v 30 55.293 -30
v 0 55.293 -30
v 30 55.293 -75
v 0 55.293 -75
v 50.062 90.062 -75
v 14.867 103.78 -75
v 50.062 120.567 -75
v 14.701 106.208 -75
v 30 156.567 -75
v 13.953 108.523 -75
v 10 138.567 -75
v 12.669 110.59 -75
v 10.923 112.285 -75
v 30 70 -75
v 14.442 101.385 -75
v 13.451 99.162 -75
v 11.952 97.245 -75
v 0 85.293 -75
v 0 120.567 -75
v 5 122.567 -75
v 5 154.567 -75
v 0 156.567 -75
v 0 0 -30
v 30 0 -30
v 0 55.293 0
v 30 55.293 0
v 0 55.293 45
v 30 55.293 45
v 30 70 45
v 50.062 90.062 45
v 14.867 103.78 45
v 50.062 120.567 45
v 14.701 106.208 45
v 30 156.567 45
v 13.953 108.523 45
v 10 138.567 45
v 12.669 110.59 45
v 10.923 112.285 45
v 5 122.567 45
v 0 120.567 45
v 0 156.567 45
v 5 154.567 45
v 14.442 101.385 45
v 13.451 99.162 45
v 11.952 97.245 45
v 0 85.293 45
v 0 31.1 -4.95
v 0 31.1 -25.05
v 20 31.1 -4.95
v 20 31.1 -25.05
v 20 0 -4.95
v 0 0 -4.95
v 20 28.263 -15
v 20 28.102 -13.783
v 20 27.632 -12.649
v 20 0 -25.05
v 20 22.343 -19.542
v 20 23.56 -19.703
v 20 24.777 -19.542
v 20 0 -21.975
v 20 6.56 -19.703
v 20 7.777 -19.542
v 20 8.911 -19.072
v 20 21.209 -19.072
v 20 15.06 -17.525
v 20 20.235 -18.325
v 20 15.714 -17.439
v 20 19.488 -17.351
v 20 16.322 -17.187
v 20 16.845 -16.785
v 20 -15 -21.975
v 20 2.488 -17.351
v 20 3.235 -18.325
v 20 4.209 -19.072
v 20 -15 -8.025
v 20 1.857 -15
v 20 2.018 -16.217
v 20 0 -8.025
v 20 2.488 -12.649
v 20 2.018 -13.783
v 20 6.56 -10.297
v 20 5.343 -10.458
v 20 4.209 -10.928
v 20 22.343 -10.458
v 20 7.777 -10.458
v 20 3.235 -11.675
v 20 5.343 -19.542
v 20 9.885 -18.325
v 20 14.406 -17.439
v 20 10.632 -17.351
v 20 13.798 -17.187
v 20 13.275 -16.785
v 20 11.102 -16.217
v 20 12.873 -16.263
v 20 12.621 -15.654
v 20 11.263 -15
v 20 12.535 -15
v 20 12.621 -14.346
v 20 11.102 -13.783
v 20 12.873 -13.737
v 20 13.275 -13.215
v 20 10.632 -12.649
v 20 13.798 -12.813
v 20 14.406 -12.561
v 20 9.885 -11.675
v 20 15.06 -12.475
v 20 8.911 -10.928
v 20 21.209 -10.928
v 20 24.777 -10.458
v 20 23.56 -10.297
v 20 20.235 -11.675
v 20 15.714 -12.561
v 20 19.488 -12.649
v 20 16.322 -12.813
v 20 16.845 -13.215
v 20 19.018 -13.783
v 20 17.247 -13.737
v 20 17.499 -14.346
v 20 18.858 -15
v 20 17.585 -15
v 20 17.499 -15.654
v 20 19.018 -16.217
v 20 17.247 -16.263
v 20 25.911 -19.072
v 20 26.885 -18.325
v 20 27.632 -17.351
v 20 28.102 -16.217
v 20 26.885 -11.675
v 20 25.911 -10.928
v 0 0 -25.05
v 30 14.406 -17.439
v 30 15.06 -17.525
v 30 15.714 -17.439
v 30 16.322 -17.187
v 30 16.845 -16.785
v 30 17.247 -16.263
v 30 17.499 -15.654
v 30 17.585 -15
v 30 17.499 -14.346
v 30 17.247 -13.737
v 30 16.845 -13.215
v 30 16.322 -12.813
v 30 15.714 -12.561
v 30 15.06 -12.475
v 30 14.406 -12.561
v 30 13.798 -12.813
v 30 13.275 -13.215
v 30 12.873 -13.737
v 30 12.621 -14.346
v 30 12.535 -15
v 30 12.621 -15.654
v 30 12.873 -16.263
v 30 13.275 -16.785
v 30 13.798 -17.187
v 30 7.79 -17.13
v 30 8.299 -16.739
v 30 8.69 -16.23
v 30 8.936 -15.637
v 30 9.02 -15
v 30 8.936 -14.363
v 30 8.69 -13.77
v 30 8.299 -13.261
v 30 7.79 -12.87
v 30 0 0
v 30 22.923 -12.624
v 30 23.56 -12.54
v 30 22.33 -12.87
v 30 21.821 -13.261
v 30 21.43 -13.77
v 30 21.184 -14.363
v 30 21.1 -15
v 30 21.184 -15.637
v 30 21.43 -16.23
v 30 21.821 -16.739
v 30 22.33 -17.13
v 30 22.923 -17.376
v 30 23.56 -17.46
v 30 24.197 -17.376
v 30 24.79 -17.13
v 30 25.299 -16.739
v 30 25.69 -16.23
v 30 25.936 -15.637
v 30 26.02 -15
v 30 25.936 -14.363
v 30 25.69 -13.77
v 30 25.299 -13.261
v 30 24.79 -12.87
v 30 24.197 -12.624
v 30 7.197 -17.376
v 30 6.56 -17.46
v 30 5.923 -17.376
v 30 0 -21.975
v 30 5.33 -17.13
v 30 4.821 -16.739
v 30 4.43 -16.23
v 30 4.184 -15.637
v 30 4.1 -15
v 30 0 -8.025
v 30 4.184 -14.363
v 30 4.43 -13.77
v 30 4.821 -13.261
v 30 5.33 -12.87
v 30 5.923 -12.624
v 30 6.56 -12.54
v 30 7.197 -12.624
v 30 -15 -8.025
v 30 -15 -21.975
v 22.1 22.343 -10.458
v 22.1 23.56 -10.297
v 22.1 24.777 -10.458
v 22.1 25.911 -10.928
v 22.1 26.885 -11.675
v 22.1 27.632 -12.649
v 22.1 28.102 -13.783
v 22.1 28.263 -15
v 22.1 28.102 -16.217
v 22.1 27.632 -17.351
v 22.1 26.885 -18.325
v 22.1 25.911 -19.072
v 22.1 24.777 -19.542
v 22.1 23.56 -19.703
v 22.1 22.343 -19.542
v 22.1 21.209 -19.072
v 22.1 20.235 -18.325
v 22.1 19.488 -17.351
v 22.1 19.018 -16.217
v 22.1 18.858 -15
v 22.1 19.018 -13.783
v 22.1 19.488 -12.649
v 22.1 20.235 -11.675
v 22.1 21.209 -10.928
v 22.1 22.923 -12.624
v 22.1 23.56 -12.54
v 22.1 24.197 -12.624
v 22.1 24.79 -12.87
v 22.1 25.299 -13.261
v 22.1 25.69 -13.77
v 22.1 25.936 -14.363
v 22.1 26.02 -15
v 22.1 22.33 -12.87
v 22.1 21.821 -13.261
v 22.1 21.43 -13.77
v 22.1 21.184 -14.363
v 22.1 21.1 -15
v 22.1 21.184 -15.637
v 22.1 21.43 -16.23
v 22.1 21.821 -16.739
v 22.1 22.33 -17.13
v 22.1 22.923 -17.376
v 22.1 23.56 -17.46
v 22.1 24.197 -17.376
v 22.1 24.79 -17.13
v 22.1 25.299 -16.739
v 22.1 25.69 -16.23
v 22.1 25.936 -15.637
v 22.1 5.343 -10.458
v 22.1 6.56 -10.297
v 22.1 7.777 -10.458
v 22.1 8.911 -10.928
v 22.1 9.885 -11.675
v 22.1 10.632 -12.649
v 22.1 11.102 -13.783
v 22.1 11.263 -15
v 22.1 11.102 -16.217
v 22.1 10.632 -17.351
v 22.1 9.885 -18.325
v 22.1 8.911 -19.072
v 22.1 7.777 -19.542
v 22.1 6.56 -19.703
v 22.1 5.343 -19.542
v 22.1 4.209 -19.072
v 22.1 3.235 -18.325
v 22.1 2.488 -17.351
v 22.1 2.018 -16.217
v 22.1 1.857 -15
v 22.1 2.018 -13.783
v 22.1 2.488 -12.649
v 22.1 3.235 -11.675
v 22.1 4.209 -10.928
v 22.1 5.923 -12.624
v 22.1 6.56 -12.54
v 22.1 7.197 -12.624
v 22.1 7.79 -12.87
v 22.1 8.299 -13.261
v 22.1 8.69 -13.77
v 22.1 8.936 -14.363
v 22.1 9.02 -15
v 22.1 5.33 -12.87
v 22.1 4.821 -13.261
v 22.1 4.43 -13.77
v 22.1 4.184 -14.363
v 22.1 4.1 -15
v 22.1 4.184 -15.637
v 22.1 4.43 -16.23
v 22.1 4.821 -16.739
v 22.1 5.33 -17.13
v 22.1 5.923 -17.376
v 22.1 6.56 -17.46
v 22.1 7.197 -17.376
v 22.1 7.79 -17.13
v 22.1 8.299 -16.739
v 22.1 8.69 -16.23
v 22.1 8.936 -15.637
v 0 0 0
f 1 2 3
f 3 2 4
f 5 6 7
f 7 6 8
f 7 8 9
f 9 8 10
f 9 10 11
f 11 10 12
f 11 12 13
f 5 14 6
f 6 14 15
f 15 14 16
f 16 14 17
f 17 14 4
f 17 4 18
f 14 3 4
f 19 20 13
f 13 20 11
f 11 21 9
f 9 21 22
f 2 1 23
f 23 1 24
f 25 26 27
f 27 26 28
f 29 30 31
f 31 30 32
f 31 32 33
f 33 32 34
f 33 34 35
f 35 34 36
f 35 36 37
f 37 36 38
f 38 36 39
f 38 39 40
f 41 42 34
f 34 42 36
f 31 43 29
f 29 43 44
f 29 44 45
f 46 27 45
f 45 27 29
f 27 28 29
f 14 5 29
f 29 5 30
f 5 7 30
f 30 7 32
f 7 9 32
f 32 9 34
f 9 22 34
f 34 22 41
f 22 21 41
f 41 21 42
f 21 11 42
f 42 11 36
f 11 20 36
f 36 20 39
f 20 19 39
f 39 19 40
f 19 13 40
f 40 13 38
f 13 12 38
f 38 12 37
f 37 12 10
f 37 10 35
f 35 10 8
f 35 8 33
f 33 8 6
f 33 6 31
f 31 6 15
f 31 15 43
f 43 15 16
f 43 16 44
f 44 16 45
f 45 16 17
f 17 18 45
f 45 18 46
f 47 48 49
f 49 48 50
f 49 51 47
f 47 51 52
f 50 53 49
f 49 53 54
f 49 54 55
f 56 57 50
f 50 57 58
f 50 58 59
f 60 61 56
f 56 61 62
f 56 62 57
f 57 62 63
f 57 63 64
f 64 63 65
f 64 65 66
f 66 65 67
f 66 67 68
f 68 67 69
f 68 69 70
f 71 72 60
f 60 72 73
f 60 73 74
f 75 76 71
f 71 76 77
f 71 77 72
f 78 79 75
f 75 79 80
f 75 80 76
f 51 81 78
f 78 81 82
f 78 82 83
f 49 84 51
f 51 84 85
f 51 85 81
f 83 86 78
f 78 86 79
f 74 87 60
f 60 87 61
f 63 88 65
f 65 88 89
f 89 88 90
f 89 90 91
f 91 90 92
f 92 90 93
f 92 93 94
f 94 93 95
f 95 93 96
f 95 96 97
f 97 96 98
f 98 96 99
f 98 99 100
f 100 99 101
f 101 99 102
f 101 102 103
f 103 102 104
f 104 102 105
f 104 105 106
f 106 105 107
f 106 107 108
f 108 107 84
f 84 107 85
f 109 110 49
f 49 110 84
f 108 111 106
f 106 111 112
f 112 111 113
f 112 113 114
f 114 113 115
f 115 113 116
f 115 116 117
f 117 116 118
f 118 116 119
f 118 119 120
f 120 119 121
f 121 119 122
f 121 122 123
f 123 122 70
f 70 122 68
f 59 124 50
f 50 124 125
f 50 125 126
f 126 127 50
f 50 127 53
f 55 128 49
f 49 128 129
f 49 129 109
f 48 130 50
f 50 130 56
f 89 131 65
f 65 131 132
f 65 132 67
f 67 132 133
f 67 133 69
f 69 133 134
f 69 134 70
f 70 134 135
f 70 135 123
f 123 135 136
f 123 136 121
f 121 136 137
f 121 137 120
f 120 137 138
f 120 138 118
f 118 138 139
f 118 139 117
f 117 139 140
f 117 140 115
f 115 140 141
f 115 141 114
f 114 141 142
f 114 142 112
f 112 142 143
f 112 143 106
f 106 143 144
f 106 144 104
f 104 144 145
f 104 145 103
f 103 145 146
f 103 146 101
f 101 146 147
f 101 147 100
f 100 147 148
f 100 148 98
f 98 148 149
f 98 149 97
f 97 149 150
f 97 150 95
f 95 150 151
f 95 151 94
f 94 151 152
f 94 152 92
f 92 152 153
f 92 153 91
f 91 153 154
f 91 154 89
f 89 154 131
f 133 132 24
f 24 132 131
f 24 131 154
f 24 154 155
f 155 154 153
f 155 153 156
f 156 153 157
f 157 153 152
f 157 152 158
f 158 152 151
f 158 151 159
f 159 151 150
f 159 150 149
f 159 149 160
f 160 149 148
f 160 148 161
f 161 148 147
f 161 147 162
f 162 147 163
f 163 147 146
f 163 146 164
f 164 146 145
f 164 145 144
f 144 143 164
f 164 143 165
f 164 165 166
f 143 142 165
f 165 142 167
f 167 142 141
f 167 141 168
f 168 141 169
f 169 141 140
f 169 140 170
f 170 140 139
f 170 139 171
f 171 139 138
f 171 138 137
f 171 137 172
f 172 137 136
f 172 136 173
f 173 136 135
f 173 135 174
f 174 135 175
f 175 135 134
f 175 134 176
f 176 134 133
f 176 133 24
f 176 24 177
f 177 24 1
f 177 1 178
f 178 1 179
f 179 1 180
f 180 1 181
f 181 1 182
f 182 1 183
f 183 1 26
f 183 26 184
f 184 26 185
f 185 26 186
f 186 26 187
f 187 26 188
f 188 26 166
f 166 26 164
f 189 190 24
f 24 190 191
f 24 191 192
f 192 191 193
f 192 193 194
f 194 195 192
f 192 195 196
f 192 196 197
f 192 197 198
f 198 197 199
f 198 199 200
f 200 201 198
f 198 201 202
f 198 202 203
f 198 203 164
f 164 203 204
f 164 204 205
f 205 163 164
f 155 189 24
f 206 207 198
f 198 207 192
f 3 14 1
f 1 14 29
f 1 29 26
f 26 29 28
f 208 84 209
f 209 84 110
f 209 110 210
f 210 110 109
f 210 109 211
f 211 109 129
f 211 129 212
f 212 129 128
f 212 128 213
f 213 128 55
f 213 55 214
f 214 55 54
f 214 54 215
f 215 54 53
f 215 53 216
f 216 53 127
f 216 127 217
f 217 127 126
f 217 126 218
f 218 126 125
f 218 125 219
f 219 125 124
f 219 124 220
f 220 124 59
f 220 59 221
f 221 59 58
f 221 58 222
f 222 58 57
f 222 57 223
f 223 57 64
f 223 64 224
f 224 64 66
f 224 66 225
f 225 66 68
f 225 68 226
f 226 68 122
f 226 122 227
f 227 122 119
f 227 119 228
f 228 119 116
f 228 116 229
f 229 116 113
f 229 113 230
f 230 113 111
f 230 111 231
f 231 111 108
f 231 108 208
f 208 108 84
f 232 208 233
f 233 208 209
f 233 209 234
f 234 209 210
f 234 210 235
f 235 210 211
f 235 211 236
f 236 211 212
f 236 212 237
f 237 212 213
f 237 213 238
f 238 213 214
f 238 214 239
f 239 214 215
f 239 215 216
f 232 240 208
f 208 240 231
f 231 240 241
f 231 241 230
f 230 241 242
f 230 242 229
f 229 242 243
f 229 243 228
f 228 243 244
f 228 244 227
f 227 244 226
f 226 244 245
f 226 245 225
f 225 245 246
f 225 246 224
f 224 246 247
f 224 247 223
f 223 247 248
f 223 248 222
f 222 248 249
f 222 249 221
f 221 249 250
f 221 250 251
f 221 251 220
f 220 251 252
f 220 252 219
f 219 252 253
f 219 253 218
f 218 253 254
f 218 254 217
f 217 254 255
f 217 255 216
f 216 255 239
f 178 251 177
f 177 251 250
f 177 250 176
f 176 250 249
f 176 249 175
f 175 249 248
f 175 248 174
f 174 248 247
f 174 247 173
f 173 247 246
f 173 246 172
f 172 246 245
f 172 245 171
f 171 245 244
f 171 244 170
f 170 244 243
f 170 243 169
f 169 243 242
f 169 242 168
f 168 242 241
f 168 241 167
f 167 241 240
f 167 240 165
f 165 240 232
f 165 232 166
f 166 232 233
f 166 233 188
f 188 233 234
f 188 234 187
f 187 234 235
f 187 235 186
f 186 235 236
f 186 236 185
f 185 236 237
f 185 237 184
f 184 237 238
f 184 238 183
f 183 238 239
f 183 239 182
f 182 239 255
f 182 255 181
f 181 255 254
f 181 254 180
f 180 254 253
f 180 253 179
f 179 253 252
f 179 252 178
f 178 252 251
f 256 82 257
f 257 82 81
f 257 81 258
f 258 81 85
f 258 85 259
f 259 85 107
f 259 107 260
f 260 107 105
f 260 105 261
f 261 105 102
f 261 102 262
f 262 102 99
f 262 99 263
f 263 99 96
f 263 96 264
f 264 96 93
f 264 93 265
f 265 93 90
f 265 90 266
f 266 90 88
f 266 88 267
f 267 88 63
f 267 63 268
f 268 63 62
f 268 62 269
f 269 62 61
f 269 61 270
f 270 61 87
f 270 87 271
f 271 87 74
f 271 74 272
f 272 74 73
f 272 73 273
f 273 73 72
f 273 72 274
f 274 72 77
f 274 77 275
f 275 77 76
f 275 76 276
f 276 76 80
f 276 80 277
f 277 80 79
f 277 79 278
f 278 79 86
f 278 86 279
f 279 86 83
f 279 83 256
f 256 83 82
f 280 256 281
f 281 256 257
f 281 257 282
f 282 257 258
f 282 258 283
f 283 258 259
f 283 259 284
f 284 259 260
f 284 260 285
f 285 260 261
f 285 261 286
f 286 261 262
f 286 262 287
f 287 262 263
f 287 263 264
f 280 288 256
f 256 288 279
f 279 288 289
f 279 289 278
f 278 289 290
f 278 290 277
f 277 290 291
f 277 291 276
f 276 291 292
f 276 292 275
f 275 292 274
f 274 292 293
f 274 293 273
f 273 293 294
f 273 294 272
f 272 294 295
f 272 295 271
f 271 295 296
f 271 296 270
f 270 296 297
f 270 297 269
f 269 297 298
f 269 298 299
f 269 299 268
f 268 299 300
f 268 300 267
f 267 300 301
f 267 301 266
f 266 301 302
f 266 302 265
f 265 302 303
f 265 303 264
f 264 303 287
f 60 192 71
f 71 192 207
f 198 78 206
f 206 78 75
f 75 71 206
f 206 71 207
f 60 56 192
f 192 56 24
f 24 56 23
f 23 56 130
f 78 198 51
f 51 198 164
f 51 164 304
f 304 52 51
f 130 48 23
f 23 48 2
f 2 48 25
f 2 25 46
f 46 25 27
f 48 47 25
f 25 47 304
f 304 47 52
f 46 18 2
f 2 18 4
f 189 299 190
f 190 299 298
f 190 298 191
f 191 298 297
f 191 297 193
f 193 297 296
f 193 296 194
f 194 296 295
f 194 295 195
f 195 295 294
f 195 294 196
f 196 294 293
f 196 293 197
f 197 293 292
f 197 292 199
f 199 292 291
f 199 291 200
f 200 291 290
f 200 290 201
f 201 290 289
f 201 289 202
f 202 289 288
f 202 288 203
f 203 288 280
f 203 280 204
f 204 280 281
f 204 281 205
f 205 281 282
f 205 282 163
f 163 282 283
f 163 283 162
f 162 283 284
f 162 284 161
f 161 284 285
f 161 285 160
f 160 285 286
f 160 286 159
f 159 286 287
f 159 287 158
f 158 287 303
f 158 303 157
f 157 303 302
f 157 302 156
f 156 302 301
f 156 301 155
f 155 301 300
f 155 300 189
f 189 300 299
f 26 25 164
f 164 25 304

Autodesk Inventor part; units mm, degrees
ref_plane "YZ Plane" through (0, 0, 0) normal (1, 0, 0) x (0, 1, 0)
ref_plane "XZ Plane" through (0, 0, 0) normal (0, 1, 0) x (-1, 0, 0)
sketch "Sketch1" plane through (0, 0, 0) normal (0, 0, 1) x (1, 0, 0)
  line L0 (0, 0) -> (25, 0)
  line L1 (25, 0) -> (25, 40)
  line L2 (25, 40) -> (0, 40)
  line L3 (0, 40) -> (0, 0)
  dimension "d1" = 25
  dimension "d2" = 40
  dimension "d3" = 25
extrude "Extrusion1" add sketch "Sketch1" against normal blind 30
sketch "Sketch2" plane through (25, 0, 0) normal (1, 0, 0) x (0, 0, -1)
  line L0 (0, 0) -> (30, 0) projected
  circle A0 centre (15, 6.56) radius 2.46
extrude "Extrusion2" cut sketch "Sketch2" against normal blind 30
sketch "Sketch3" plane through (0, 0, 0) normal (-1, 0, 0) x (0, 0, 1)
  line L0 (0, 0) -> (-30, 0) projected
  line L1 (-25.05, 0) -> (-4.95, 0)
  line L2 (-4.95, 0) -> (-4.95, 33.12)
  line L3 (-4.95, 33.12) -> (-25.05, 33.12)
  line L4 (-25.05, 33.12) -> (-25.05, 0)
  dimension "d11" = 20.1
extrude "Extrusion3" cut sketch "Sketch3" against normal blind 20
sketch "Sketch4" plane through (0, 0, 0) normal (0, -1, 0) x (1, 0, 0)
  line L0 (20, -4.95) -> (20, -25.05) projected
  line L1 (20, -15) -> (25, -15)
  line L2 (25, 0) -> (25, -30) projected
  line L3 (20, -8.025) -> (25, -8.025)
  line L4 (25, -8.025) -> (25, -21.975)
  line L5 (25, -21.975) -> (20, -21.975)
  line L6 (20, -21.975) -> (20, -8.025)
  line L7 (20, -8.025) -> (25, -21.975) construction
  line L8 (25, -8.025) -> (20, -21.975) construction
  line L9 (25, -12.54) -> (25, -17.46) projected
  point P0 (0, 0)
  point P1 (22.5, -15)
  dimension "d14" = 13.95
extrude "Extrusion4" add sketch "Sketch4" along normal blind 15
sketch "Sketch5" plane through (20, 0, 0) normal (-1, 0, 0) x (0, 0, 1)
  circle A0 centre (-15, 6.56) radius 2.46 projected
  circle A1 centre (-15, 6.56) radius 4.7025
  circle A2 centre (-15, 6.56) radius 2.46 projected
  circle A3 centre (-15, 6.56) radius 2.46
  point P0 (0, 0)
  dimension "d17" = 9.405
extrude "Extrusion5" cut sketch "Sketch5" against normal blind 2.1
sketch "Sketch6" plane through (25, 0, 0) normal (1, 0, 0) x (0, 0, -1)
  circle A0 centre (15, 6.56) radius 4.7025 projected
  line L0 (15, 6.56) -> (15, 23.56)
  circle A1 centre (15, 23.56) radius 2.46
  point P0 (0, 0)
  dimension "d20" = 17
  dimension "d21" = 4.92
extrude "Extrusion6" cut sketch "Sketch6" against normal blind 10 contours A1
sketch "Sketch7" plane through (20, 0, 0) normal (-1, 0, 0) x (0, 0, 1)
  circle A0 centre (-15, 23.56) radius 2.46 projected
  circle A1 centre (-15, 23.56) radius 4.7025
  point P0 (0, 0)
  dimension "d24" = 9.405
extrude "Extrusion7" cut sketch "Sketch7" against normal blind 2.1
sketch "Sketch9" plane through (25, 0, 0) normal (1, 0, 0) x (0, 0, -1)
  circle A0 centre (15, 6.56) radius 2.46 projected
  circle A1 centre (15, 6.56) radius 2.46
  circle A2 centre (15, 23.56) radius 2.46 projected
  circle A3 centre (15, 23.56) radius 2.46
  line L0 (30, 40) -> (30, 0) projected
  line L1 (30, 0) -> (30, 40)
  line L2 (30, 40) -> (0, 40)
  line L3 (0, 40) -> (0, 0)
  line L4 (0, 0) -> (8.025, 0) projected
  line L5 (21.975, 0) -> (21.975, -15)
  line L6 (21.975, -15) -> (8.025, -15)
  line L7 (8.025, -15) -> (8.025, 0)
  line L8 (0, 0) -> (8.025, 0)
  line L9 (21.975, 0) -> (30, 0)
extrude "Extrusion8" add sketch "Sketch9" along normal blind 5
sketch "Sketch10" plane through (0, 40, 0) normal (0, 1, 0) x (1, 0, 0)
  line L0 (0, 30) -> (30, 30) projected
  line L1 (30, 0) -> (0, 0) projected
  line L2 (0, 30) -> (30, 30)
  line L3 (30, 30) -> (30, 0)
  line L4 (30, 0) -> (0, 0)
  line L5 (0, 0) -> (0, 30)
extrude "Extrusion9" add sketch "Sketch10" along normal blind 30
sketch "Sketch12" plane through (30, 0, 0) normal (1, 0, 0) x (0, 0, -1)
  circle A0 centre (15, 6.56) radius 2.46 projected
  line L0 (15, 6.56) -> (15, 15.06)
  circle A1 centre (15, 15.06) radius 2.525
  point P0 (0, 0)
  dimension "d31" = 8.5
  dimension "d33" = 5.05
extrude "Extrusion10" cut sketch "Sketch12" against normal blind 30 contours A1
sketch "Sketch15" plane through (0, 0, -25.05) normal (-1, 0, 0) x (0, 0, 1)
  line L0 (0, 33.12) -> (20.1, 33.12) projected
  line L1 (20.1, 33.12) -> (20.1, 0) projected
  line L2 (0, 33.12) -> (20.1, 33.12)
  line L3 (20.1, 33.12) -> (20.1, 31.1)
  line L4 (20.1, 31.1) -> (0, 31.1)
  line L5 (0, 31.1) -> (0, 33.12)
  point P0 (25.05, 0)
  dimension "d57" = 2.02
extrude "Extrusion13" add sketch "Sketch15" against normal blind 20
sketch "Sketch17" plane through (0, 0, 0) normal (0, 0, 1) x (1, 0, 0)
  line L0 (0, 70) -> (30, 70) projected
  line L1 (30, 70) -> (50.0622, 90.0622)
  line L2 (30, 70) -> (80, 70) construction
  line L3 (11.9522, 97.2454) -> (0, 85.2932)
  line L4 (0, 70) -> (0, 85.2932)
  line L5 (0, 70) -> (0, 0) projected
  line L6 (0, 70) -> (30, 70)
  line L7 (10.923, 112.2849) -> (0, 120.567)
  line L8 (50.0622, 105.3553) -> (50.0622, 120.567)
  line L9 (50.0622, 105.3553) -> (50.0622, 90.0622)
  arc A0 (11.9522, 97.2454) -> (10.923, 112.2849) centre (4.8811, 104.3165) ccw
  line L10 (0, 156.567) -> (30, 156.567)
  line L11 (30, 156.567) -> (50.0622, 120.567)
  line L12 (5, 154.567) -> (0, 156.567)
  line L13 (5, 122.567) -> (0, 120.567)
  line L14 (5, 122.567) -> (10, 138.567)
  line L15 (10, 138.567) -> (5, 154.567)
  dimension "d61" = 45
  dimension "d62" = 32.0271
  dimension "d72" = 10
extrude "Extrusion14" add sketch "Sketch17" against normal blind 30
sketch "Sketch23" plane through (0, 0, 0) normal (0, 0, 1) x (1, 0, 0)
  line L0 (50.0622, 90.0622) -> (30, 70) projected
  line L1 (30, 70) -> (50.0622, 90.0622)
  line L2 (50.0622, 120.567) -> (50.0622, 90.0622) projected
  line L3 (50.0622, 90.0622) -> (50.0622, 120.567)
  line L4 (30, 156.567) -> (50.0622, 120.567) projected
  line L5 (50.0622, 120.567) -> (30, 156.567)
  line L6 (0, 156.567) -> (30, 156.567) projected
  line L7 (30, 156.567) -> (0, 156.567)
  line L8 (5, 154.567) -> (0, 156.567) projected
  line L9 (0, 156.567) -> (5, 154.567)
  line L10 (10, 138.567) -> (5, 154.567) projected
  line L11 (5, 154.567) -> (10, 138.567)
  line L12 (5, 122.567) -> (10, 138.567) projected
  line L13 (10, 138.567) -> (5, 122.567)
  line L14 (0, 120.567) -> (5, 122.567) projected
  line L15 (5, 122.567) -> (0, 120.567)
  line L16 (10.923, 112.2849) -> (0, 120.567) projected
  line L17 (0, 120.567) -> (10.923, 112.2849)
  line L18 (0, 85.2932) -> (11.9522, 97.2454) projected
  line L19 (11.9522, 97.2454) -> (0, 85.2932)
  line L20 (0, 85.2932) -> (0, 55.2932)
  line L21 (0, 0) -> (0, 85.2932) projected
  line L22 (0, 55.2932) -> (30, 55.2932)
  line L23 (30, 0) -> (30, 70) projected
  line L24 (30, 55.2932) -> (30, 70)
  arc A0 (11.9522, 97.2454) -> (10.923, 112.2849) centre (4.8811, 104.3165) ccw
  dimension "d97" = 30
extrude "Extrusion15" add sketch "Sketch23" along normal blind 45
ref_plane "Work Plane1" through (0, 0, -15) normal (0, 0, 1) x (1, 0, 0)
mirror "Mirror1" about plane through (0, 0, -15) normal (0, 0, 1) of "Extrusion15"
properties part number "rec_c_32mm_x_120mm"
